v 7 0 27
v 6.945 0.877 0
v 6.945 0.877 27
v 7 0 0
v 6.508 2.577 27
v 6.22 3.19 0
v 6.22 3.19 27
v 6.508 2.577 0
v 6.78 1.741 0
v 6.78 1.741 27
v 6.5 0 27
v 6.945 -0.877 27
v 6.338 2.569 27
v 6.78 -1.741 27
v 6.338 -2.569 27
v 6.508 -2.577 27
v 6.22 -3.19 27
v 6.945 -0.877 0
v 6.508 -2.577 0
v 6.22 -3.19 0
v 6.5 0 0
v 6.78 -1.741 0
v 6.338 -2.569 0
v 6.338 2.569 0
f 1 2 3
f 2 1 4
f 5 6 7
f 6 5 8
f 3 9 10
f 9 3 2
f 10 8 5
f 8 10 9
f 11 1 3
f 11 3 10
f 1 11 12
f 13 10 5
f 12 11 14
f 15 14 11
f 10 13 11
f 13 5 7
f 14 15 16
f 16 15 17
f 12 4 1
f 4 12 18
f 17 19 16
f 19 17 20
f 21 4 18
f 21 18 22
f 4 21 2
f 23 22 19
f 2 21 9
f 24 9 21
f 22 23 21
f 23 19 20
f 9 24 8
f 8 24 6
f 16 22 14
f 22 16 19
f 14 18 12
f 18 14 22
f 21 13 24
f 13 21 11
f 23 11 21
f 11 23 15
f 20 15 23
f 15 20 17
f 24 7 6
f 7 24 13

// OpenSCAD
$fn = 50;


difference() {
	union() {
		cylinder(h = 27, r = 7.0000000000);
		translate(v = [-17.0000000000, 0, 0]) {
			cylinder(h = 27, r = 7.0000000000);
		}
	}
	union() {
		cylinder(h = 27, r = 3.2500000000);
		cylinder(h = 27, r = 1.8000000000);
		cylinder(h = 27, r = 1.8000000000);
		cylinder(h = 27, r = 1.8000000000);
		translate(v = [-21.5000000000, 0, 0]) {
			hull() {
				translate(v = [-3.7500000000, 0.0000000000, 0]) {
					cylinder(h = 27, r = 10.5000000000);
				}
				translate(v = [3.7500000000, 0.0000000000, 0]) {
					cylinder(h = 27, r = 10.5000000000);
				}
				translate(v = [-3.7500000000, -0.0000000000, 0]) {
					cylinder(h = 27, r = 10.5000000000);
				}
				translate(v = [3.7500000000, -0.0000000000, 0]) {
					cylinder(h = 27, r = 10.5000000000);
				}
			}
		}
		translate(v = [-14.0000000000, 0, 0.0000000000]) {
			cylinder(h = 27, r = 20.5000000000);
		}
	}
}
